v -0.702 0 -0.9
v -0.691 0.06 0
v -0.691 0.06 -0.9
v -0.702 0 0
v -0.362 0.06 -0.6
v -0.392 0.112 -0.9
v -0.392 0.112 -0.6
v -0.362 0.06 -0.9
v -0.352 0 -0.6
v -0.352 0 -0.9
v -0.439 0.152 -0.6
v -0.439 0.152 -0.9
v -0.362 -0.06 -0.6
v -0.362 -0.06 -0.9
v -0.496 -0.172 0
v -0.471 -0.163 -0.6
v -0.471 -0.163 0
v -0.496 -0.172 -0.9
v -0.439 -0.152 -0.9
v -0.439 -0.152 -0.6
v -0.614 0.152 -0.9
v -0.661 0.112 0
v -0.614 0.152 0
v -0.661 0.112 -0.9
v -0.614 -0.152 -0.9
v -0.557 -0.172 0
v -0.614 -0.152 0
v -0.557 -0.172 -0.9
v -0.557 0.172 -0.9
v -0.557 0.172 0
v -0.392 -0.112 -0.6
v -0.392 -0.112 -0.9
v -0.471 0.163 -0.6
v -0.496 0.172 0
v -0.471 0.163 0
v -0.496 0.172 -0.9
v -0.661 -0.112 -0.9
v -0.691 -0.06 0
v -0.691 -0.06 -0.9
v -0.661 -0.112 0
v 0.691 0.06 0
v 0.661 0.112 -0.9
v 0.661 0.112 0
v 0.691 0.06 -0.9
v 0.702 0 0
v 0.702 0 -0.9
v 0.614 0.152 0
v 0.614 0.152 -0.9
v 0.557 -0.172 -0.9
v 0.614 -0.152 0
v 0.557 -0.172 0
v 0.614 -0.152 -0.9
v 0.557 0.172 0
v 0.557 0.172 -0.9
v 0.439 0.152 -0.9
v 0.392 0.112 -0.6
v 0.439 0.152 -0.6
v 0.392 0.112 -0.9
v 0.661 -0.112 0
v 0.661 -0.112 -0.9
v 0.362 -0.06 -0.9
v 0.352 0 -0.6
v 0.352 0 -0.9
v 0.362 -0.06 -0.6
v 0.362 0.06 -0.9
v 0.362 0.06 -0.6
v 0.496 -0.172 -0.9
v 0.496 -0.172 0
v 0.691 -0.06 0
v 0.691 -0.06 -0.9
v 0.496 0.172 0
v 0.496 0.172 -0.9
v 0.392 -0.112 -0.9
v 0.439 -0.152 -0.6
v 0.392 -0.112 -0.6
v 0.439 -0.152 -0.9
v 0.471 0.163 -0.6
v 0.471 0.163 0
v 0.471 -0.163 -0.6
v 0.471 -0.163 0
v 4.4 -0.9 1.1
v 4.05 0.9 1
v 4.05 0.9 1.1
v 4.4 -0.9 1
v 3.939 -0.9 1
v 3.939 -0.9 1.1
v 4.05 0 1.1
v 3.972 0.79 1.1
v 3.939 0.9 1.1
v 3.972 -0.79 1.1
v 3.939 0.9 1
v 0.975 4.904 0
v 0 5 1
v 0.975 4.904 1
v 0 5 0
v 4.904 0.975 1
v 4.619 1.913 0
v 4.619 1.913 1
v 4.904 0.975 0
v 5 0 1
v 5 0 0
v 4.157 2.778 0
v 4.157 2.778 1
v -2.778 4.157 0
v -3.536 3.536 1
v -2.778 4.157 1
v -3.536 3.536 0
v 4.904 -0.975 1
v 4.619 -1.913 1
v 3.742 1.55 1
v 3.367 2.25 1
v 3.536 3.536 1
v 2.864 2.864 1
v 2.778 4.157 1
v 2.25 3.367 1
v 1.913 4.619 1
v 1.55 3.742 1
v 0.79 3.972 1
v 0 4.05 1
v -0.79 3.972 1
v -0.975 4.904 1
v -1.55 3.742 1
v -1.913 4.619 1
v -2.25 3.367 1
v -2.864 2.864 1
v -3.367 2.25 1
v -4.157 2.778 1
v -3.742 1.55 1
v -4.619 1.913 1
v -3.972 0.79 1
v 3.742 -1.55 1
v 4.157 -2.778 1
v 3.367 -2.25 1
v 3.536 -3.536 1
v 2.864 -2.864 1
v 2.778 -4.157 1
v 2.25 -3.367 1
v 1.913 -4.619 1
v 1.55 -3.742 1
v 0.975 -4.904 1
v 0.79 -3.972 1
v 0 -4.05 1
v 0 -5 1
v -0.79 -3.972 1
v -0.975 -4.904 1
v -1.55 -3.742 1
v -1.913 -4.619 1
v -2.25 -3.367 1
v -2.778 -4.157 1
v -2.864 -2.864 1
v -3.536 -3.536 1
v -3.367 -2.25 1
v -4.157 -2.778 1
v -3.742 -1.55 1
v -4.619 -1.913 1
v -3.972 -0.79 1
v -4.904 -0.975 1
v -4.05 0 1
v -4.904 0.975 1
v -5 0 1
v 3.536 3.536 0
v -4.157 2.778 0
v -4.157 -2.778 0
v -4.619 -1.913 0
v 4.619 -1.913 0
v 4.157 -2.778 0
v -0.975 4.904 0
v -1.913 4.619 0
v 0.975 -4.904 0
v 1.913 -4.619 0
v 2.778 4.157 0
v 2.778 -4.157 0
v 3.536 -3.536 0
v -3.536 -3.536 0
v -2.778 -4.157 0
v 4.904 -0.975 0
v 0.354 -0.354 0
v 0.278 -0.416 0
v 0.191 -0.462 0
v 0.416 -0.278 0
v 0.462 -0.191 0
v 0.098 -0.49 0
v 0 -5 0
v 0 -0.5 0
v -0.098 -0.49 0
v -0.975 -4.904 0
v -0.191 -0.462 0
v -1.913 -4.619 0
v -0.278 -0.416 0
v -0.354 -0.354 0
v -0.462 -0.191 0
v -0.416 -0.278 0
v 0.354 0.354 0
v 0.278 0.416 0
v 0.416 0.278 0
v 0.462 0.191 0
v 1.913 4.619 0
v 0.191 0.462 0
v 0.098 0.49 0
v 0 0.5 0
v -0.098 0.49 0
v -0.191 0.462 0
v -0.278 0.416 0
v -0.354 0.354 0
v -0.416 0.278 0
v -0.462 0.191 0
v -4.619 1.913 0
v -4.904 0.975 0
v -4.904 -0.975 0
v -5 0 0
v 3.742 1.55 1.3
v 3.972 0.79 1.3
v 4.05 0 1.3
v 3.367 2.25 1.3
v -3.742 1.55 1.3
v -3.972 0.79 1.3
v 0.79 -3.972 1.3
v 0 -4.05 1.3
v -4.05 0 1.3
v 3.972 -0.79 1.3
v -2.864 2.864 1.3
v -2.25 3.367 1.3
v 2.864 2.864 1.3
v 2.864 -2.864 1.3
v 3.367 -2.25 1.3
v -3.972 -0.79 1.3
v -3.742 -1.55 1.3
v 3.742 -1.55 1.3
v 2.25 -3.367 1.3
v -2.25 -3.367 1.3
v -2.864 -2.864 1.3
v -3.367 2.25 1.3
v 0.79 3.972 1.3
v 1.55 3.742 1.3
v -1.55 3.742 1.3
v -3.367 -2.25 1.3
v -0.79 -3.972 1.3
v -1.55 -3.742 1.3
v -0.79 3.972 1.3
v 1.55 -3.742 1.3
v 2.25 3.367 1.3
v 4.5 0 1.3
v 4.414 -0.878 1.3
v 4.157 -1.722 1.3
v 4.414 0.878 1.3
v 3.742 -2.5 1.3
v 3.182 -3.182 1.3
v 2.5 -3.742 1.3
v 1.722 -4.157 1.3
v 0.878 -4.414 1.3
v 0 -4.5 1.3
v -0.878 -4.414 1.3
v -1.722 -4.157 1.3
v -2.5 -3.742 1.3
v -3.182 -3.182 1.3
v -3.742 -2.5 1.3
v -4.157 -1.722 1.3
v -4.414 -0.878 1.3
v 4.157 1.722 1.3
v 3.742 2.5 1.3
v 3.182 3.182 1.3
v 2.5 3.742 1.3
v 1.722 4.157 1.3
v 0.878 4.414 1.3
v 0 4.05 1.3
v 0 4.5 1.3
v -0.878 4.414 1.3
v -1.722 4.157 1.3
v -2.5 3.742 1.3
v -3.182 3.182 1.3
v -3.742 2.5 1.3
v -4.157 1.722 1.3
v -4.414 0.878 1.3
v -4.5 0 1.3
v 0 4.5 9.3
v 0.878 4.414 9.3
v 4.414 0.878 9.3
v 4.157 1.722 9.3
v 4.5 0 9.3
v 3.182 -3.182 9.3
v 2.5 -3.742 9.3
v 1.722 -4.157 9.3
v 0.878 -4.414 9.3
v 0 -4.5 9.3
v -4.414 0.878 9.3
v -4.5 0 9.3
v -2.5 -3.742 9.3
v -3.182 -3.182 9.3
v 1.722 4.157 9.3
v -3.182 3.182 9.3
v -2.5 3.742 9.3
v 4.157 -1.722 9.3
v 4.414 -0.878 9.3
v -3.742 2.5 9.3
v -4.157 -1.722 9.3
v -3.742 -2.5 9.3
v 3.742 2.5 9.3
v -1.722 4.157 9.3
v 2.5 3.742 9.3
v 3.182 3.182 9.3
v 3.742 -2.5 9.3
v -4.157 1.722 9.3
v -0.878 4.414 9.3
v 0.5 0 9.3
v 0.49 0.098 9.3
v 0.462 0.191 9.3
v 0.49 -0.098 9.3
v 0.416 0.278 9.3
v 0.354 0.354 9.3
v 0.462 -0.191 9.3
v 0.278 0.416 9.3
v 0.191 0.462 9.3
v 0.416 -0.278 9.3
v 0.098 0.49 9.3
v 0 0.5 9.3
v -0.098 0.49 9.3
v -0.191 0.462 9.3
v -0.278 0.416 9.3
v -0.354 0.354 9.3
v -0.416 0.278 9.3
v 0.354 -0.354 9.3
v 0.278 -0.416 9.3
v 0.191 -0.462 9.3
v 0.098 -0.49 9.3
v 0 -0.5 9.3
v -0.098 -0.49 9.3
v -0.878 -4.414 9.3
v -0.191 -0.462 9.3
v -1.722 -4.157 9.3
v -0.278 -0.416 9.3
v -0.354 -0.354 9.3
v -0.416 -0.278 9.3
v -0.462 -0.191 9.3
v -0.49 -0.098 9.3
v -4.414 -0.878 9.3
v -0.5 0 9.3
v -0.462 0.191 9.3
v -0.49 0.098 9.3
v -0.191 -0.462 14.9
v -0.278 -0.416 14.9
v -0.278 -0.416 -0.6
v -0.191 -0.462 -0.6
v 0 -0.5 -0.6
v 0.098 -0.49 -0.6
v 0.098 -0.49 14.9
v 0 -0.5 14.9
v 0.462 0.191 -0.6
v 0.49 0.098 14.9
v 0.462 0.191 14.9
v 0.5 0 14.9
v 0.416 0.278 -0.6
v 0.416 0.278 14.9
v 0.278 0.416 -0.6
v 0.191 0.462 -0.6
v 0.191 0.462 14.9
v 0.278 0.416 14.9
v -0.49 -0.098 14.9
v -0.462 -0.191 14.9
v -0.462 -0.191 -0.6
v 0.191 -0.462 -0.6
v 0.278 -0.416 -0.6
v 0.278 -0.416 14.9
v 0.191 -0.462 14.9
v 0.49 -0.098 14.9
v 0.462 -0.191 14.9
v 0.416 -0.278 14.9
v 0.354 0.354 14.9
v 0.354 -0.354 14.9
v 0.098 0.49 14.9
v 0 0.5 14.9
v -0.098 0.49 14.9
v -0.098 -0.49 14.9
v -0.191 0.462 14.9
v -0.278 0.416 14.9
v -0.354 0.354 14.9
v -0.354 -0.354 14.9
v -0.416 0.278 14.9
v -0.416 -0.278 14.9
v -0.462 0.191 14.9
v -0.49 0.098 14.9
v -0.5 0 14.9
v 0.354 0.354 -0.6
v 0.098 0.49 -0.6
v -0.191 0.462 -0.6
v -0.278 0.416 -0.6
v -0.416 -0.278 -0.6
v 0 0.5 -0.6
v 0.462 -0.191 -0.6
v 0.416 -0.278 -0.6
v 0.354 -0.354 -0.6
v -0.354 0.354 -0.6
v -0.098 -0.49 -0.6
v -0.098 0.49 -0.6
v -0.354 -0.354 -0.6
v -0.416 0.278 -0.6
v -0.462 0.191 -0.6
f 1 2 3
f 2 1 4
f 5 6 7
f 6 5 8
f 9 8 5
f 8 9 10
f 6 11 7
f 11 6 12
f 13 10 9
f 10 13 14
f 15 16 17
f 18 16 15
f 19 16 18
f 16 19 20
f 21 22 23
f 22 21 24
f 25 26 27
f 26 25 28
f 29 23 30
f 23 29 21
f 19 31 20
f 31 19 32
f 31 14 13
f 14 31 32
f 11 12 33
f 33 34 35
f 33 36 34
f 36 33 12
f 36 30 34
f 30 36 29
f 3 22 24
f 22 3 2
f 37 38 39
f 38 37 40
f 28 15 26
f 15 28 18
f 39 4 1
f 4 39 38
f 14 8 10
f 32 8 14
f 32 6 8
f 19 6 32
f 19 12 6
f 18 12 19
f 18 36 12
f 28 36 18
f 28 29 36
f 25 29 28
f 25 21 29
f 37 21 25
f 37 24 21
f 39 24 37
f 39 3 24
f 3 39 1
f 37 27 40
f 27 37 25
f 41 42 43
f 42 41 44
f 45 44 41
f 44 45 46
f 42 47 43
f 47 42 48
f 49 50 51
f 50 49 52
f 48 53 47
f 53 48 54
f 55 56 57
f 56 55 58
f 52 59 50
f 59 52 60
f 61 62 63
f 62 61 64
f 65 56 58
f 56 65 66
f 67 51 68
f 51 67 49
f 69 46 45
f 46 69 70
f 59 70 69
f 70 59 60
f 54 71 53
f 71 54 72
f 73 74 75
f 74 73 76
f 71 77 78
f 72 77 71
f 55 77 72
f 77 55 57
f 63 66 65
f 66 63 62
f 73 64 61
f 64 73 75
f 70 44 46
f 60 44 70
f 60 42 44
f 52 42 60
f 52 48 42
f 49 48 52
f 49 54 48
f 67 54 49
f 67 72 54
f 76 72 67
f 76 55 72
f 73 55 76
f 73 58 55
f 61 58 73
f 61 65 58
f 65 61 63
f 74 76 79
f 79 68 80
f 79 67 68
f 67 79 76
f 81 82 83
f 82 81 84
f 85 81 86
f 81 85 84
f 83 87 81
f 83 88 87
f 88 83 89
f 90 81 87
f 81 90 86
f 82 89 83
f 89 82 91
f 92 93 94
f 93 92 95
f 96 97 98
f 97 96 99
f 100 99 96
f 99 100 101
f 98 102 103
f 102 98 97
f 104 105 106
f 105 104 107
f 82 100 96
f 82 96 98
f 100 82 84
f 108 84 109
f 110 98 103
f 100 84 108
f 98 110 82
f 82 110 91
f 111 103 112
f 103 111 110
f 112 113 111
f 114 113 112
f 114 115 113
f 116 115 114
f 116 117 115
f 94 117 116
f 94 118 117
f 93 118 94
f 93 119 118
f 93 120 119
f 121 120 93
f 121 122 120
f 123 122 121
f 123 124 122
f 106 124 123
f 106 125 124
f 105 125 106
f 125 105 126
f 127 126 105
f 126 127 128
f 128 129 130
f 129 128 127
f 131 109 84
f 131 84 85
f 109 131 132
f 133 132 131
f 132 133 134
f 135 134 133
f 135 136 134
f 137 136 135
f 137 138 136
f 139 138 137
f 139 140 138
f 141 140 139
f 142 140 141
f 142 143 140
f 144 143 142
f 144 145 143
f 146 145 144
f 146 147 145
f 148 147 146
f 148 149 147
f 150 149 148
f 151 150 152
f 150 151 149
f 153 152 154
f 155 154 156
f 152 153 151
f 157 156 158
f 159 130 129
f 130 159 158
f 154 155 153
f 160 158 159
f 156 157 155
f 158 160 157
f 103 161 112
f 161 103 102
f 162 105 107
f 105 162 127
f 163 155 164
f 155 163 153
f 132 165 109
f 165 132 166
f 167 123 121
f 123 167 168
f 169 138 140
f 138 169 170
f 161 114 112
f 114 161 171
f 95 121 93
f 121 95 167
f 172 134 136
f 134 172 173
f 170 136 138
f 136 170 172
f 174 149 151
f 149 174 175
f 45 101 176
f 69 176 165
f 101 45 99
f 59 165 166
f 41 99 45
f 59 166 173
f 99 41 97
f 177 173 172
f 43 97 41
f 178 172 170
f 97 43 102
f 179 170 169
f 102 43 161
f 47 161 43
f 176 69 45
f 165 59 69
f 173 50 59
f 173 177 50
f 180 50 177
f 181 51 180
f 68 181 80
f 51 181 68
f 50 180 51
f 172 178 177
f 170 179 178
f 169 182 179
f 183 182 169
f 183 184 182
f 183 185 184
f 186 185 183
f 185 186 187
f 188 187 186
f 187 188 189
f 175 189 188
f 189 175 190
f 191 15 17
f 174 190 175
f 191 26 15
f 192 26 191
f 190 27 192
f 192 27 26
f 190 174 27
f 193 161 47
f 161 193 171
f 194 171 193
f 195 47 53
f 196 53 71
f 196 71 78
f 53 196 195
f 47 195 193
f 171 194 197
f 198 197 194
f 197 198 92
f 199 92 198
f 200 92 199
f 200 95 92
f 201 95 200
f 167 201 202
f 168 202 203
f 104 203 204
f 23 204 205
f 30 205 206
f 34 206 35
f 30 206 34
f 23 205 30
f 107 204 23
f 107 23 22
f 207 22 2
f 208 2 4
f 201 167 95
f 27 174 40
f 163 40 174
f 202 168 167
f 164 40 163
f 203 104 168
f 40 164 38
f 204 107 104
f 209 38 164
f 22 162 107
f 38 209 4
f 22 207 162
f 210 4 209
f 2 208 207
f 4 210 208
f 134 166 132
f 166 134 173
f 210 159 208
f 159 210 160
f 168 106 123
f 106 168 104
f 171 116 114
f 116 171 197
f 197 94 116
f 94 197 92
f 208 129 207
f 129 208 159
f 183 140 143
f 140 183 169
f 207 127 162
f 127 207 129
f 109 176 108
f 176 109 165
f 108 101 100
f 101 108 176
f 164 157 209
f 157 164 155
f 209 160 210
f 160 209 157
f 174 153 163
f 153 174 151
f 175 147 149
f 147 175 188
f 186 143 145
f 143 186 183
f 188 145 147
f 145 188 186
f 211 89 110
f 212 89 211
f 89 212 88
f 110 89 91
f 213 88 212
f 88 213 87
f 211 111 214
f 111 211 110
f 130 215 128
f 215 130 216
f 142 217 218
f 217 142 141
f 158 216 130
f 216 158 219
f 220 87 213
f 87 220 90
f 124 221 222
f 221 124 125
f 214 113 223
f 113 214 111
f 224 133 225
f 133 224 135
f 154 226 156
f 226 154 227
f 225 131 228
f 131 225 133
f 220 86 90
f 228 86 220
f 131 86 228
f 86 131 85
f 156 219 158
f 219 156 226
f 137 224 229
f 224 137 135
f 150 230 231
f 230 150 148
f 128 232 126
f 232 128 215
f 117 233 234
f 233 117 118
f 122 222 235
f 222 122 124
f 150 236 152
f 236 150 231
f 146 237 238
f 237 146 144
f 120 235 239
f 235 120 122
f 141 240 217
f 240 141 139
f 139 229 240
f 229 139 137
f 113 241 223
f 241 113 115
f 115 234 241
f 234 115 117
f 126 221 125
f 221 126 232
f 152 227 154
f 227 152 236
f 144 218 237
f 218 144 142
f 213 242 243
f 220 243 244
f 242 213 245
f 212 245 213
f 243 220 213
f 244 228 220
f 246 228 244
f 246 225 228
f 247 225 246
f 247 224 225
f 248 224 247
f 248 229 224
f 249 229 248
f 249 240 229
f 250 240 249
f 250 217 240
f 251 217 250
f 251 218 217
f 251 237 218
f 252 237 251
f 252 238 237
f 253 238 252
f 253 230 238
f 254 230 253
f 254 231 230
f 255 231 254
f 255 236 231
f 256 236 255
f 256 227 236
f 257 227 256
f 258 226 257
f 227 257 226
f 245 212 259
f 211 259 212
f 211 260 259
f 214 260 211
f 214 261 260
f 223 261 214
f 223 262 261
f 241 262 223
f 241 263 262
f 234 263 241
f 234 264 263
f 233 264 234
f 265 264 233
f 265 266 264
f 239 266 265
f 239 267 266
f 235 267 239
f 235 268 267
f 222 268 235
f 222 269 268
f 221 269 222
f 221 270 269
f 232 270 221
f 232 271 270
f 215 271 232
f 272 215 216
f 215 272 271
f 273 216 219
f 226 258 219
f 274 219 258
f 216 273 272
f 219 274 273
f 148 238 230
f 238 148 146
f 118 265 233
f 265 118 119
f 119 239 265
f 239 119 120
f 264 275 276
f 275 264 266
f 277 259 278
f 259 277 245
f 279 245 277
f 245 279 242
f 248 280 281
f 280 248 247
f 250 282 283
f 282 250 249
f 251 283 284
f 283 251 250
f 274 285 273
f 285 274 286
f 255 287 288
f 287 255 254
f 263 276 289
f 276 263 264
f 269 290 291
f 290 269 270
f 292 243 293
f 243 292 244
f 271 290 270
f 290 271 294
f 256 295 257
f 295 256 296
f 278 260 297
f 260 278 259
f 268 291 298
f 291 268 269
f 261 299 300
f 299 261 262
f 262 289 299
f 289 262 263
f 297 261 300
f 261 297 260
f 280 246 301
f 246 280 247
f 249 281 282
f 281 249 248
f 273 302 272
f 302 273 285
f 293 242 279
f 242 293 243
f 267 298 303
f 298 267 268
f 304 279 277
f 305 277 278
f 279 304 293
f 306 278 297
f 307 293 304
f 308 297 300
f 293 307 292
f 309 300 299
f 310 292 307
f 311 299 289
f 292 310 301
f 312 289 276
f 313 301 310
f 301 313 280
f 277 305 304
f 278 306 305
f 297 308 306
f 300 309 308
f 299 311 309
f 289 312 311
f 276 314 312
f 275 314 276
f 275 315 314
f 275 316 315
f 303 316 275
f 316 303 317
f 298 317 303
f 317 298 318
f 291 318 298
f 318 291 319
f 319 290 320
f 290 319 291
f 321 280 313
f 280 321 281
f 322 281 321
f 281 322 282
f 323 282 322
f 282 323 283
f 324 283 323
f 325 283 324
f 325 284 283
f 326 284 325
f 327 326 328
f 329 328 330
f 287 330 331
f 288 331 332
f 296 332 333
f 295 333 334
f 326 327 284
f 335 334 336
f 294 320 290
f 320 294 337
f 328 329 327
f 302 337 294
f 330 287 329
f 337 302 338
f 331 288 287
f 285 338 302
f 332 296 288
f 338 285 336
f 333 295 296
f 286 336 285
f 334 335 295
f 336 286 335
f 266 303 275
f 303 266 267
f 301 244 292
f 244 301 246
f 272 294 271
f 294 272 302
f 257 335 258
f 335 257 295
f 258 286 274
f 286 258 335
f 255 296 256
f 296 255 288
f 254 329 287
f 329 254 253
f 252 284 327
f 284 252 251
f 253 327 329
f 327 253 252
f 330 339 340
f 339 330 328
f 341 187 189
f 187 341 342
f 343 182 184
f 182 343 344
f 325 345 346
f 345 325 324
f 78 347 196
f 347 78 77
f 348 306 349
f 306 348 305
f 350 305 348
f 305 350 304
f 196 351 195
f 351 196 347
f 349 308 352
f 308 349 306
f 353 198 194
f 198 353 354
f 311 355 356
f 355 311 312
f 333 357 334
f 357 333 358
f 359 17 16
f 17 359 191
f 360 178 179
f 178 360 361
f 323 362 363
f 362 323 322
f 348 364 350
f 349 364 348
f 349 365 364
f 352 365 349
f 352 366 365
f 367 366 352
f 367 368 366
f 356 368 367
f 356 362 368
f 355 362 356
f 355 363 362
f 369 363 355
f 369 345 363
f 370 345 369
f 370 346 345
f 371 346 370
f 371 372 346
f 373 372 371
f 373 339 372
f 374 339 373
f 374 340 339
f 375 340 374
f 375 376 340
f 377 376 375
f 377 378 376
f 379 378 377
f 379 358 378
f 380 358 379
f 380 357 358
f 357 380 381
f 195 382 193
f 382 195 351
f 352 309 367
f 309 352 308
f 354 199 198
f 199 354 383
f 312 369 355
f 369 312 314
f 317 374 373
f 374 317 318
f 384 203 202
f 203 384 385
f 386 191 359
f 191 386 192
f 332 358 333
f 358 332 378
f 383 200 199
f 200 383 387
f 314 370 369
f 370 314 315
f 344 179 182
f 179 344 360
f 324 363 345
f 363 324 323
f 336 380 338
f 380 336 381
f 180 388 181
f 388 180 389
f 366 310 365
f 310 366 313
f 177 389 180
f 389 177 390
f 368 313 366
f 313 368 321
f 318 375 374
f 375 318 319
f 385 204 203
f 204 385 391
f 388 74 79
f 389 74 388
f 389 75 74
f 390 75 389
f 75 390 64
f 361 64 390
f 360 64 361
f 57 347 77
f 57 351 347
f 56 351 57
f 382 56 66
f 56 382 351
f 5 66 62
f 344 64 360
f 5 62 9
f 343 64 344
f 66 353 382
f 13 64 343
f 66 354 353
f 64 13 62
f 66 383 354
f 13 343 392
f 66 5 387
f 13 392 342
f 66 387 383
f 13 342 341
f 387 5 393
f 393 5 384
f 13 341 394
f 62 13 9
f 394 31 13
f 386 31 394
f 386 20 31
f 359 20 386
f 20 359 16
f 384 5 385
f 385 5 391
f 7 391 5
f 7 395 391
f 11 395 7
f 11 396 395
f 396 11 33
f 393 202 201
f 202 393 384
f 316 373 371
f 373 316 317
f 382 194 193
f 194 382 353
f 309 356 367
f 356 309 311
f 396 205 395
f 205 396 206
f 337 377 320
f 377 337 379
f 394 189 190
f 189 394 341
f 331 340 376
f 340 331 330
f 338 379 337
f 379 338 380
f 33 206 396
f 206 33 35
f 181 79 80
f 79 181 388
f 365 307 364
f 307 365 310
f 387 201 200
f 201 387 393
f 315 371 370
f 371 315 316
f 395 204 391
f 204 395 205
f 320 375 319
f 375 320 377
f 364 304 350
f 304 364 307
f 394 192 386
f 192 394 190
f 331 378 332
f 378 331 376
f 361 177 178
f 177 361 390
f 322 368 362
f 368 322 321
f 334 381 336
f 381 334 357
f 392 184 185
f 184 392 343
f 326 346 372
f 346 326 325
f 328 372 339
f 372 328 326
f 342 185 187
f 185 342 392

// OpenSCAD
// Parameters (mm)
primary_dimension_mm = 9; //[4.5:18:0.1]
body_diameter_mm = 9; //[4.5:18:0.1]
body_height_mm = 8; //[4:16:0.1]
base_plate_diameter_mm = 10; //[5:20:0.1]
base_plate_thickness_mm = 1; //[0.5:2:0.05]
shaft_diameter_mm = 1; //[0.5:2:0.05]
shaft_length_mm = 15.5; //[7.75:31:0.1]
interface_step_height_mm = 0.9; //[0.45:1.8:0.05]
interface_step_diameter_mm = 8.1; //[4.05:16.2:0.1]
overlap_mm = 0.6; //[0.2:1.5:0.1]

// Quality
$fn=32;

// ---------- Helpers ----------
module rounded_rect_2d(w, h, r) {
  r2 = min(r, min(w, h)/2);
  hull() {
    translate([ w/2 - r2,  h/2 - r2]) circle(r=r2, $fn=24);
    translate([-w/2 + r2,  h/2 - r2]) circle(r=r2, $fn=24);
    translate([ w/2 - r2, -h/2 + r2]) circle(r=r2, $fn=24);
    translate([-w/2 + r2, -h/2 + r2]) circle(r=r2, $fn=24);
  }
}

module screw_hole(d=1.6, h=10) {
  cylinder(d=d, h=h, center=true, $fn=24);
}

// ---------- MANDATORY COMPONENTS ----------

// [PRIMARY] Veroboard Base (detailed: board + copper strip bumps + mounting holes)
module veroboard_base(size=[base_plate_diameter_mm*0.55, base_plate_diameter_mm*0.35, base_plate_thickness_mm*0.6], wall=2, tapped=false) {
  w = size[0];
  l = size[1];
  t = max(0.6, size[2]);
  corner_r = min(1.2, min(w,l)*0.12);

  color([0.85, 0.72, 0.45])  // phenolic/veroboard tan
  union() {
    // Board body with rounded corners
    linear_extrude(height=t)
      rounded_rect_2d(w, l, corner_r);

    // Copper strip hints on underside (small ribs)
    // Keep subtle to avoid heavy booleans
    strip_h = min(0.18, t*0.35);
    strip_w = max(0.35, min(0.6, w/30));
    n = max(4, floor(l / 1.8));
    for (i = [0:n-1]) {
      y = -l/2 + (i+0.5)*l/n;
      translate([0, y, -strip_h*0.02])
        color([0.72, 0.45, 0.2])
          cube([w*0.92, strip_w, strip_h], center=true);
    }

    // Through holes grid (visual only: shallow dimples on top)
    // (Avoid full perforation to keep it connected solid per plan intent)
    dimple_d = 0.5;
    dimple_h = min(0.25, t*0.45);
    nx = max(4, floor(w / 2.0));
    ny = max(3, floor(l / 2.0));
    for (ix=[0:nx-1]) for (iy=[0:ny-1]) {
      x = -w*0.42 + ix*(w*0.84)/(max(1,nx-1));
      y = -l*0.42 + iy*(l*0.84)/(max(1,ny-1));
      translate([x, y, t - dimple_h/2])
        color([0.65, 0.55, 0.35])
          cylinder(d=dimple_d, h=dimple_h, center=true, $fn=16);
    }
  }
}

// [SECONDARY] Buzzer (detailed: can + top sound port + pins)
module buzzer(r=body_diameter_mm*0.18, h=base_plate_thickness_mm*0.8) {
  can_h = max(1.2, h);
  can_r = max(1.2, r);
  lip_h = min(0.35, can_h*0.25);
  port_d = can_r*0.55;

  color([0.12, 0.12, 0.14])  // black plastic
  union() {
    // Main can with slight top lip
    union() {
      cylinder(r=can_r, h=can_h, center=true, $fn=32);
      translate([0,0,can_h/2 - lip_h/2])
        cylinder(r=can_r*1.03, h=lip_h, center=true, $fn=32);
    }

    // Top sound port ring (raised)
    translate([0,0,can_h/2 - lip_h*0.9])
      color([0.18, 0.18, 0.2])
        difference() {
          cylinder(d=port_d*1.15, h=lip_h*0.9, center=true, $fn=32);
          cylinder(d=port_d, h=lip_h*1.2, center=true, $fn=32);
        }

    // Two pins (metal) exiting bottom
    pin_d = 0.35;
    pin_len = max(1.2, can_h*0.9);
    pin_spacing = can_r*0.65;
    for (sx=[-1,1]) {
      translate([sx*pin_spacing/2, 0, -can_h/2 - pin_len/2 + 0.1])
        color("Silver")
          cylinder(d=pin_d, h=pin_len, center=true, $fn=18);
    }
  }
}

// [SECONDARY] PCB Base (detailed: FR4 board + pads + 4 mounting holes)
module pcb_base(size=[base_plate_diameter_mm*0.45, base_plate_diameter_mm*0.25, base_plate_thickness_mm*0.6], wall=2) {
  w = size[0];
  l = size[1];
  t = max(0.8, size[2]);
  corner_r = min(1.0, min(w,l)*0.15);

  color([0.0, 0.4, 0.2])  // green FR4
  union() {
    // Board
    linear_extrude(height=t)
      rounded_rect_2d(w, l, corner_r);

    // Silkscreen-ish rectangle
    translate([0,0,t-0.05])
      color([0.85,0.85,0.85])
        linear_extrude(height=0.08)
          difference() {
            rounded_rect_2d(w*0.86, l*0.78, corner_r*0.7);
            rounded_rect_2d(w*0.78, l*0.70, corner_r*0.6);
          }

    // Pads (gold) along one edge
    pad_w = w*0.08;
    pad_l = l*0.12;
    pad_h = 0.12;
    np = 4;
    for (i=[0:np-1]) {
      x = -w*0.25 + i*(w*0.5)/(max(1,np-1));
      translate([x, -l*0.32, t + pad_h/2])
        color([0.8, 0.6, 0.2])
          cube([pad_w, pad_l, pad_h], center=true);
    }

    // Mounting hole rings (visual only, not cut through to keep union solid)
    ring_d = min(1.6, min(w,l)*0.18);
    ring_h = 0.15;
    hx = w*0.38;
    hy = l*0.32;
    for (sx=[-1,1]) for (sy=[-1,1]) {
      translate([sx*hx, sy*hy, t + ring_h/2])
        color([0.8, 0.6, 0.2])
          difference() {
            cylinder(d=ring_d, h=ring_h, center=true, $fn=24);
            cylinder(d=ring_d*0.55, h=ring_h*1.5, center=true, $fn=24);
          }
    }
  }
}

// [SECONDARY] Orientate Axial (detailed: small axial coupler/adapter around shaft)
module orientate_axial(shaft_d=shaft_diameter_mm, body_d=shaft_diameter_mm*3.2, body_h=shaft_diameter_mm*3.0) {
  d_out = max(2.2, body_d);
  h = max(2.0, body_h);
  d_in = max(shaft_d*1.05, 0.8);

  color([0.15, 0.15, 0.17])  // black anodized/printed
  union() {
    // Coupler body
    difference() {
      cylinder(d=d_out, h=h, center=true, $fn=32);
      cylinder(d=d_in, h=h+0.4, center=true, $fn=24);
      // Side flat (key) hint
      translate([d_out*0.22, 0, 0])
        cube([d_out*0.6, d_out*0.25, h+0.6], center=true);
    }

    // Tiny set-screw boss
    boss_d = d_out*0.55;
    boss_h = h*0.35;
    translate([d_out*0.35, 0, 0])
      color([0.2,0.2,0.22])
        cylinder(d=boss_d, h=boss_h, center=true, $fn=24);
  }
}

// [SECONDARY] Right Trapezoid (detailed: trapezoid block with bore + mounting holes)
module right_trapezoid(size=[base_plate_diameter_mm*0.25, base_plate_diameter_mm*0.18, base_plate_thickness_mm*0.6], center=true, h=0) {
  w = max(1.5, size[0]);
  d = max(1.2, size[1]);
  t = max(0.8, size[2]);

  // Trapezoid profile (wider at bottom)
  top_w = w*0.72;
  bot_w = w;
  prof = [
    [-bot_w/2, -d/2],
    [ bot_w/2, -d/2],
    [ top_w/2,  d/2],
    [-top_w/2,  d/2]
  ];

  bore_d = min(w*0.35, d*0.55);
  hole_d = min(1.2, min(w,d)*0.22);

  color([0.75, 0.75, 0.77])  // aluminum-ish
  difference() {
    translate([0,0, center ? 0 : t/2])
      linear_extrude(height=t, center=center)
        polygon(points=prof);

    // Central bore (bearing seat hint)
    translate([0, 0, 0])
      cylinder(d=bore_d, h=t+0.6, center=true, $fn=32);

    // Two mounting holes
    hx = w*0.22;
    hy = -d*0.18;
    for (sx=[-1,1]) {
      translate([sx*hx, hy, 0])
        cylinder(d=hole_d, h=t+0.6, center=true, $fn=24);
    }
  }
}

// ---------- Motor primitives from plan ----------
module base_plate_disc() {
  translate([0,0,base_plate_thickness_mm/2])
    cylinder(r=base_plate_diameter_mm/2, h=base_plate_thickness_mm, center=true, $fn=32);
}

module body_to_base_interface_step() {
  translate([0,0,base_plate_thickness_mm + interface_step_height_mm/2 - overlap_mm])
    cylinder(r=interface_step_diameter_mm/2, h=interface_step_height_mm, center=true, $fn=32);
}

module motor_body_cylinder() {
  translate([0,0,base_plate_thickness_mm + interface_step_height_mm + body_height_mm/2 - overlap_mm])
    cylinder(r=body_diameter_mm/2, h=body_height_mm, center=true, $fn=32);
}

module center_shaft() {
  translate([0,0,shaft_length_mm/2 - overlap_mm])
    cylinder(r=shaft_diameter_mm/2, h=shaft_length_mm, center=true, $fn=32);
}

// ---------- Assembly ----------
module assembly() {
  // Motor union per plan, with detailed mandatory components.
  union() {
    // Base plate + motor can
    color([0.4, 0.4, 0.43]) base_plate_disc();                 // steel-ish
    color([0.55, 0.55, 0.58]) body_to_base_interface_step();    // metal step
    color([0.1, 0.1, 0.12]) motor_body_cylinder();              // black can

    // Shaft
    color("Silver") center_shaft();

    // Orientate axial (coupler) attached on shaft near base
    translate([0,0, max(1.2, shaft_diameter_mm*1.8)])
      orientate_axial();

    // PRIMARY: Veroboard base at origin region (attached to base plate underside/top per plan)
    translate([0,0, base_plate_thickness_mm - (base_plate_thickness_mm*0.6)/2])
      veroboard_base(size=[base_plate_diameter_mm*0.55, base_plate_diameter_mm*0.35, base_plate_thickness_mm*0.6], wall=2, tapped=false);

    // PCB base (stacked, slightly offset so it's visible but still connected)
    translate([0, base_plate_diameter_mm*0.12, base_plate_thickness_mm - (base_plate_thickness_mm*0.6)/2 + overlap_mm*0.2])
      pcb_base(size=[base_plate_diameter_mm*0.45, base_plate_diameter_mm*0.25, base_plate_thickness_mm*0.6], wall=2);

    // Buzzer on top of base plate
    translate([0,0, base_plate_thickness_mm + (base_plate_thickness_mm*0.8)/2 - overlap_mm])
      buzzer(r=body_diameter_mm*0.18, h=base_plate_thickness_mm*0.8);

    // Right trapezoid attached at right edge per plan
    translate([base_plate_diameter_mm/2 - (base_plate_diameter_mm*0.25)/2 - overlap_mm, 0,
               base_plate_thickness_mm - (base_plate_thickness_mm*0.6)/2])
      right_trapezoid(size=[base_plate_diameter_mm*0.25, base_plate_diameter_mm*0.18, base_plate_thickness_mm*0.6], center=true, h=0);

    // Small connector rib to guarantee physical connection between stacked boards and motor base
    // (Allowed by assembly rules: add bracket/mount to connect; keep minimal)
    color([0.75, 0.75, 0.77])
      translate([0,0, base_plate_thickness_mm*0.55])
        cube([base_plate_diameter_mm*0.18, base_plate_diameter_mm*0.12, base_plate_thickness_mm*0.9], center=true);
  }
}

assembly();
